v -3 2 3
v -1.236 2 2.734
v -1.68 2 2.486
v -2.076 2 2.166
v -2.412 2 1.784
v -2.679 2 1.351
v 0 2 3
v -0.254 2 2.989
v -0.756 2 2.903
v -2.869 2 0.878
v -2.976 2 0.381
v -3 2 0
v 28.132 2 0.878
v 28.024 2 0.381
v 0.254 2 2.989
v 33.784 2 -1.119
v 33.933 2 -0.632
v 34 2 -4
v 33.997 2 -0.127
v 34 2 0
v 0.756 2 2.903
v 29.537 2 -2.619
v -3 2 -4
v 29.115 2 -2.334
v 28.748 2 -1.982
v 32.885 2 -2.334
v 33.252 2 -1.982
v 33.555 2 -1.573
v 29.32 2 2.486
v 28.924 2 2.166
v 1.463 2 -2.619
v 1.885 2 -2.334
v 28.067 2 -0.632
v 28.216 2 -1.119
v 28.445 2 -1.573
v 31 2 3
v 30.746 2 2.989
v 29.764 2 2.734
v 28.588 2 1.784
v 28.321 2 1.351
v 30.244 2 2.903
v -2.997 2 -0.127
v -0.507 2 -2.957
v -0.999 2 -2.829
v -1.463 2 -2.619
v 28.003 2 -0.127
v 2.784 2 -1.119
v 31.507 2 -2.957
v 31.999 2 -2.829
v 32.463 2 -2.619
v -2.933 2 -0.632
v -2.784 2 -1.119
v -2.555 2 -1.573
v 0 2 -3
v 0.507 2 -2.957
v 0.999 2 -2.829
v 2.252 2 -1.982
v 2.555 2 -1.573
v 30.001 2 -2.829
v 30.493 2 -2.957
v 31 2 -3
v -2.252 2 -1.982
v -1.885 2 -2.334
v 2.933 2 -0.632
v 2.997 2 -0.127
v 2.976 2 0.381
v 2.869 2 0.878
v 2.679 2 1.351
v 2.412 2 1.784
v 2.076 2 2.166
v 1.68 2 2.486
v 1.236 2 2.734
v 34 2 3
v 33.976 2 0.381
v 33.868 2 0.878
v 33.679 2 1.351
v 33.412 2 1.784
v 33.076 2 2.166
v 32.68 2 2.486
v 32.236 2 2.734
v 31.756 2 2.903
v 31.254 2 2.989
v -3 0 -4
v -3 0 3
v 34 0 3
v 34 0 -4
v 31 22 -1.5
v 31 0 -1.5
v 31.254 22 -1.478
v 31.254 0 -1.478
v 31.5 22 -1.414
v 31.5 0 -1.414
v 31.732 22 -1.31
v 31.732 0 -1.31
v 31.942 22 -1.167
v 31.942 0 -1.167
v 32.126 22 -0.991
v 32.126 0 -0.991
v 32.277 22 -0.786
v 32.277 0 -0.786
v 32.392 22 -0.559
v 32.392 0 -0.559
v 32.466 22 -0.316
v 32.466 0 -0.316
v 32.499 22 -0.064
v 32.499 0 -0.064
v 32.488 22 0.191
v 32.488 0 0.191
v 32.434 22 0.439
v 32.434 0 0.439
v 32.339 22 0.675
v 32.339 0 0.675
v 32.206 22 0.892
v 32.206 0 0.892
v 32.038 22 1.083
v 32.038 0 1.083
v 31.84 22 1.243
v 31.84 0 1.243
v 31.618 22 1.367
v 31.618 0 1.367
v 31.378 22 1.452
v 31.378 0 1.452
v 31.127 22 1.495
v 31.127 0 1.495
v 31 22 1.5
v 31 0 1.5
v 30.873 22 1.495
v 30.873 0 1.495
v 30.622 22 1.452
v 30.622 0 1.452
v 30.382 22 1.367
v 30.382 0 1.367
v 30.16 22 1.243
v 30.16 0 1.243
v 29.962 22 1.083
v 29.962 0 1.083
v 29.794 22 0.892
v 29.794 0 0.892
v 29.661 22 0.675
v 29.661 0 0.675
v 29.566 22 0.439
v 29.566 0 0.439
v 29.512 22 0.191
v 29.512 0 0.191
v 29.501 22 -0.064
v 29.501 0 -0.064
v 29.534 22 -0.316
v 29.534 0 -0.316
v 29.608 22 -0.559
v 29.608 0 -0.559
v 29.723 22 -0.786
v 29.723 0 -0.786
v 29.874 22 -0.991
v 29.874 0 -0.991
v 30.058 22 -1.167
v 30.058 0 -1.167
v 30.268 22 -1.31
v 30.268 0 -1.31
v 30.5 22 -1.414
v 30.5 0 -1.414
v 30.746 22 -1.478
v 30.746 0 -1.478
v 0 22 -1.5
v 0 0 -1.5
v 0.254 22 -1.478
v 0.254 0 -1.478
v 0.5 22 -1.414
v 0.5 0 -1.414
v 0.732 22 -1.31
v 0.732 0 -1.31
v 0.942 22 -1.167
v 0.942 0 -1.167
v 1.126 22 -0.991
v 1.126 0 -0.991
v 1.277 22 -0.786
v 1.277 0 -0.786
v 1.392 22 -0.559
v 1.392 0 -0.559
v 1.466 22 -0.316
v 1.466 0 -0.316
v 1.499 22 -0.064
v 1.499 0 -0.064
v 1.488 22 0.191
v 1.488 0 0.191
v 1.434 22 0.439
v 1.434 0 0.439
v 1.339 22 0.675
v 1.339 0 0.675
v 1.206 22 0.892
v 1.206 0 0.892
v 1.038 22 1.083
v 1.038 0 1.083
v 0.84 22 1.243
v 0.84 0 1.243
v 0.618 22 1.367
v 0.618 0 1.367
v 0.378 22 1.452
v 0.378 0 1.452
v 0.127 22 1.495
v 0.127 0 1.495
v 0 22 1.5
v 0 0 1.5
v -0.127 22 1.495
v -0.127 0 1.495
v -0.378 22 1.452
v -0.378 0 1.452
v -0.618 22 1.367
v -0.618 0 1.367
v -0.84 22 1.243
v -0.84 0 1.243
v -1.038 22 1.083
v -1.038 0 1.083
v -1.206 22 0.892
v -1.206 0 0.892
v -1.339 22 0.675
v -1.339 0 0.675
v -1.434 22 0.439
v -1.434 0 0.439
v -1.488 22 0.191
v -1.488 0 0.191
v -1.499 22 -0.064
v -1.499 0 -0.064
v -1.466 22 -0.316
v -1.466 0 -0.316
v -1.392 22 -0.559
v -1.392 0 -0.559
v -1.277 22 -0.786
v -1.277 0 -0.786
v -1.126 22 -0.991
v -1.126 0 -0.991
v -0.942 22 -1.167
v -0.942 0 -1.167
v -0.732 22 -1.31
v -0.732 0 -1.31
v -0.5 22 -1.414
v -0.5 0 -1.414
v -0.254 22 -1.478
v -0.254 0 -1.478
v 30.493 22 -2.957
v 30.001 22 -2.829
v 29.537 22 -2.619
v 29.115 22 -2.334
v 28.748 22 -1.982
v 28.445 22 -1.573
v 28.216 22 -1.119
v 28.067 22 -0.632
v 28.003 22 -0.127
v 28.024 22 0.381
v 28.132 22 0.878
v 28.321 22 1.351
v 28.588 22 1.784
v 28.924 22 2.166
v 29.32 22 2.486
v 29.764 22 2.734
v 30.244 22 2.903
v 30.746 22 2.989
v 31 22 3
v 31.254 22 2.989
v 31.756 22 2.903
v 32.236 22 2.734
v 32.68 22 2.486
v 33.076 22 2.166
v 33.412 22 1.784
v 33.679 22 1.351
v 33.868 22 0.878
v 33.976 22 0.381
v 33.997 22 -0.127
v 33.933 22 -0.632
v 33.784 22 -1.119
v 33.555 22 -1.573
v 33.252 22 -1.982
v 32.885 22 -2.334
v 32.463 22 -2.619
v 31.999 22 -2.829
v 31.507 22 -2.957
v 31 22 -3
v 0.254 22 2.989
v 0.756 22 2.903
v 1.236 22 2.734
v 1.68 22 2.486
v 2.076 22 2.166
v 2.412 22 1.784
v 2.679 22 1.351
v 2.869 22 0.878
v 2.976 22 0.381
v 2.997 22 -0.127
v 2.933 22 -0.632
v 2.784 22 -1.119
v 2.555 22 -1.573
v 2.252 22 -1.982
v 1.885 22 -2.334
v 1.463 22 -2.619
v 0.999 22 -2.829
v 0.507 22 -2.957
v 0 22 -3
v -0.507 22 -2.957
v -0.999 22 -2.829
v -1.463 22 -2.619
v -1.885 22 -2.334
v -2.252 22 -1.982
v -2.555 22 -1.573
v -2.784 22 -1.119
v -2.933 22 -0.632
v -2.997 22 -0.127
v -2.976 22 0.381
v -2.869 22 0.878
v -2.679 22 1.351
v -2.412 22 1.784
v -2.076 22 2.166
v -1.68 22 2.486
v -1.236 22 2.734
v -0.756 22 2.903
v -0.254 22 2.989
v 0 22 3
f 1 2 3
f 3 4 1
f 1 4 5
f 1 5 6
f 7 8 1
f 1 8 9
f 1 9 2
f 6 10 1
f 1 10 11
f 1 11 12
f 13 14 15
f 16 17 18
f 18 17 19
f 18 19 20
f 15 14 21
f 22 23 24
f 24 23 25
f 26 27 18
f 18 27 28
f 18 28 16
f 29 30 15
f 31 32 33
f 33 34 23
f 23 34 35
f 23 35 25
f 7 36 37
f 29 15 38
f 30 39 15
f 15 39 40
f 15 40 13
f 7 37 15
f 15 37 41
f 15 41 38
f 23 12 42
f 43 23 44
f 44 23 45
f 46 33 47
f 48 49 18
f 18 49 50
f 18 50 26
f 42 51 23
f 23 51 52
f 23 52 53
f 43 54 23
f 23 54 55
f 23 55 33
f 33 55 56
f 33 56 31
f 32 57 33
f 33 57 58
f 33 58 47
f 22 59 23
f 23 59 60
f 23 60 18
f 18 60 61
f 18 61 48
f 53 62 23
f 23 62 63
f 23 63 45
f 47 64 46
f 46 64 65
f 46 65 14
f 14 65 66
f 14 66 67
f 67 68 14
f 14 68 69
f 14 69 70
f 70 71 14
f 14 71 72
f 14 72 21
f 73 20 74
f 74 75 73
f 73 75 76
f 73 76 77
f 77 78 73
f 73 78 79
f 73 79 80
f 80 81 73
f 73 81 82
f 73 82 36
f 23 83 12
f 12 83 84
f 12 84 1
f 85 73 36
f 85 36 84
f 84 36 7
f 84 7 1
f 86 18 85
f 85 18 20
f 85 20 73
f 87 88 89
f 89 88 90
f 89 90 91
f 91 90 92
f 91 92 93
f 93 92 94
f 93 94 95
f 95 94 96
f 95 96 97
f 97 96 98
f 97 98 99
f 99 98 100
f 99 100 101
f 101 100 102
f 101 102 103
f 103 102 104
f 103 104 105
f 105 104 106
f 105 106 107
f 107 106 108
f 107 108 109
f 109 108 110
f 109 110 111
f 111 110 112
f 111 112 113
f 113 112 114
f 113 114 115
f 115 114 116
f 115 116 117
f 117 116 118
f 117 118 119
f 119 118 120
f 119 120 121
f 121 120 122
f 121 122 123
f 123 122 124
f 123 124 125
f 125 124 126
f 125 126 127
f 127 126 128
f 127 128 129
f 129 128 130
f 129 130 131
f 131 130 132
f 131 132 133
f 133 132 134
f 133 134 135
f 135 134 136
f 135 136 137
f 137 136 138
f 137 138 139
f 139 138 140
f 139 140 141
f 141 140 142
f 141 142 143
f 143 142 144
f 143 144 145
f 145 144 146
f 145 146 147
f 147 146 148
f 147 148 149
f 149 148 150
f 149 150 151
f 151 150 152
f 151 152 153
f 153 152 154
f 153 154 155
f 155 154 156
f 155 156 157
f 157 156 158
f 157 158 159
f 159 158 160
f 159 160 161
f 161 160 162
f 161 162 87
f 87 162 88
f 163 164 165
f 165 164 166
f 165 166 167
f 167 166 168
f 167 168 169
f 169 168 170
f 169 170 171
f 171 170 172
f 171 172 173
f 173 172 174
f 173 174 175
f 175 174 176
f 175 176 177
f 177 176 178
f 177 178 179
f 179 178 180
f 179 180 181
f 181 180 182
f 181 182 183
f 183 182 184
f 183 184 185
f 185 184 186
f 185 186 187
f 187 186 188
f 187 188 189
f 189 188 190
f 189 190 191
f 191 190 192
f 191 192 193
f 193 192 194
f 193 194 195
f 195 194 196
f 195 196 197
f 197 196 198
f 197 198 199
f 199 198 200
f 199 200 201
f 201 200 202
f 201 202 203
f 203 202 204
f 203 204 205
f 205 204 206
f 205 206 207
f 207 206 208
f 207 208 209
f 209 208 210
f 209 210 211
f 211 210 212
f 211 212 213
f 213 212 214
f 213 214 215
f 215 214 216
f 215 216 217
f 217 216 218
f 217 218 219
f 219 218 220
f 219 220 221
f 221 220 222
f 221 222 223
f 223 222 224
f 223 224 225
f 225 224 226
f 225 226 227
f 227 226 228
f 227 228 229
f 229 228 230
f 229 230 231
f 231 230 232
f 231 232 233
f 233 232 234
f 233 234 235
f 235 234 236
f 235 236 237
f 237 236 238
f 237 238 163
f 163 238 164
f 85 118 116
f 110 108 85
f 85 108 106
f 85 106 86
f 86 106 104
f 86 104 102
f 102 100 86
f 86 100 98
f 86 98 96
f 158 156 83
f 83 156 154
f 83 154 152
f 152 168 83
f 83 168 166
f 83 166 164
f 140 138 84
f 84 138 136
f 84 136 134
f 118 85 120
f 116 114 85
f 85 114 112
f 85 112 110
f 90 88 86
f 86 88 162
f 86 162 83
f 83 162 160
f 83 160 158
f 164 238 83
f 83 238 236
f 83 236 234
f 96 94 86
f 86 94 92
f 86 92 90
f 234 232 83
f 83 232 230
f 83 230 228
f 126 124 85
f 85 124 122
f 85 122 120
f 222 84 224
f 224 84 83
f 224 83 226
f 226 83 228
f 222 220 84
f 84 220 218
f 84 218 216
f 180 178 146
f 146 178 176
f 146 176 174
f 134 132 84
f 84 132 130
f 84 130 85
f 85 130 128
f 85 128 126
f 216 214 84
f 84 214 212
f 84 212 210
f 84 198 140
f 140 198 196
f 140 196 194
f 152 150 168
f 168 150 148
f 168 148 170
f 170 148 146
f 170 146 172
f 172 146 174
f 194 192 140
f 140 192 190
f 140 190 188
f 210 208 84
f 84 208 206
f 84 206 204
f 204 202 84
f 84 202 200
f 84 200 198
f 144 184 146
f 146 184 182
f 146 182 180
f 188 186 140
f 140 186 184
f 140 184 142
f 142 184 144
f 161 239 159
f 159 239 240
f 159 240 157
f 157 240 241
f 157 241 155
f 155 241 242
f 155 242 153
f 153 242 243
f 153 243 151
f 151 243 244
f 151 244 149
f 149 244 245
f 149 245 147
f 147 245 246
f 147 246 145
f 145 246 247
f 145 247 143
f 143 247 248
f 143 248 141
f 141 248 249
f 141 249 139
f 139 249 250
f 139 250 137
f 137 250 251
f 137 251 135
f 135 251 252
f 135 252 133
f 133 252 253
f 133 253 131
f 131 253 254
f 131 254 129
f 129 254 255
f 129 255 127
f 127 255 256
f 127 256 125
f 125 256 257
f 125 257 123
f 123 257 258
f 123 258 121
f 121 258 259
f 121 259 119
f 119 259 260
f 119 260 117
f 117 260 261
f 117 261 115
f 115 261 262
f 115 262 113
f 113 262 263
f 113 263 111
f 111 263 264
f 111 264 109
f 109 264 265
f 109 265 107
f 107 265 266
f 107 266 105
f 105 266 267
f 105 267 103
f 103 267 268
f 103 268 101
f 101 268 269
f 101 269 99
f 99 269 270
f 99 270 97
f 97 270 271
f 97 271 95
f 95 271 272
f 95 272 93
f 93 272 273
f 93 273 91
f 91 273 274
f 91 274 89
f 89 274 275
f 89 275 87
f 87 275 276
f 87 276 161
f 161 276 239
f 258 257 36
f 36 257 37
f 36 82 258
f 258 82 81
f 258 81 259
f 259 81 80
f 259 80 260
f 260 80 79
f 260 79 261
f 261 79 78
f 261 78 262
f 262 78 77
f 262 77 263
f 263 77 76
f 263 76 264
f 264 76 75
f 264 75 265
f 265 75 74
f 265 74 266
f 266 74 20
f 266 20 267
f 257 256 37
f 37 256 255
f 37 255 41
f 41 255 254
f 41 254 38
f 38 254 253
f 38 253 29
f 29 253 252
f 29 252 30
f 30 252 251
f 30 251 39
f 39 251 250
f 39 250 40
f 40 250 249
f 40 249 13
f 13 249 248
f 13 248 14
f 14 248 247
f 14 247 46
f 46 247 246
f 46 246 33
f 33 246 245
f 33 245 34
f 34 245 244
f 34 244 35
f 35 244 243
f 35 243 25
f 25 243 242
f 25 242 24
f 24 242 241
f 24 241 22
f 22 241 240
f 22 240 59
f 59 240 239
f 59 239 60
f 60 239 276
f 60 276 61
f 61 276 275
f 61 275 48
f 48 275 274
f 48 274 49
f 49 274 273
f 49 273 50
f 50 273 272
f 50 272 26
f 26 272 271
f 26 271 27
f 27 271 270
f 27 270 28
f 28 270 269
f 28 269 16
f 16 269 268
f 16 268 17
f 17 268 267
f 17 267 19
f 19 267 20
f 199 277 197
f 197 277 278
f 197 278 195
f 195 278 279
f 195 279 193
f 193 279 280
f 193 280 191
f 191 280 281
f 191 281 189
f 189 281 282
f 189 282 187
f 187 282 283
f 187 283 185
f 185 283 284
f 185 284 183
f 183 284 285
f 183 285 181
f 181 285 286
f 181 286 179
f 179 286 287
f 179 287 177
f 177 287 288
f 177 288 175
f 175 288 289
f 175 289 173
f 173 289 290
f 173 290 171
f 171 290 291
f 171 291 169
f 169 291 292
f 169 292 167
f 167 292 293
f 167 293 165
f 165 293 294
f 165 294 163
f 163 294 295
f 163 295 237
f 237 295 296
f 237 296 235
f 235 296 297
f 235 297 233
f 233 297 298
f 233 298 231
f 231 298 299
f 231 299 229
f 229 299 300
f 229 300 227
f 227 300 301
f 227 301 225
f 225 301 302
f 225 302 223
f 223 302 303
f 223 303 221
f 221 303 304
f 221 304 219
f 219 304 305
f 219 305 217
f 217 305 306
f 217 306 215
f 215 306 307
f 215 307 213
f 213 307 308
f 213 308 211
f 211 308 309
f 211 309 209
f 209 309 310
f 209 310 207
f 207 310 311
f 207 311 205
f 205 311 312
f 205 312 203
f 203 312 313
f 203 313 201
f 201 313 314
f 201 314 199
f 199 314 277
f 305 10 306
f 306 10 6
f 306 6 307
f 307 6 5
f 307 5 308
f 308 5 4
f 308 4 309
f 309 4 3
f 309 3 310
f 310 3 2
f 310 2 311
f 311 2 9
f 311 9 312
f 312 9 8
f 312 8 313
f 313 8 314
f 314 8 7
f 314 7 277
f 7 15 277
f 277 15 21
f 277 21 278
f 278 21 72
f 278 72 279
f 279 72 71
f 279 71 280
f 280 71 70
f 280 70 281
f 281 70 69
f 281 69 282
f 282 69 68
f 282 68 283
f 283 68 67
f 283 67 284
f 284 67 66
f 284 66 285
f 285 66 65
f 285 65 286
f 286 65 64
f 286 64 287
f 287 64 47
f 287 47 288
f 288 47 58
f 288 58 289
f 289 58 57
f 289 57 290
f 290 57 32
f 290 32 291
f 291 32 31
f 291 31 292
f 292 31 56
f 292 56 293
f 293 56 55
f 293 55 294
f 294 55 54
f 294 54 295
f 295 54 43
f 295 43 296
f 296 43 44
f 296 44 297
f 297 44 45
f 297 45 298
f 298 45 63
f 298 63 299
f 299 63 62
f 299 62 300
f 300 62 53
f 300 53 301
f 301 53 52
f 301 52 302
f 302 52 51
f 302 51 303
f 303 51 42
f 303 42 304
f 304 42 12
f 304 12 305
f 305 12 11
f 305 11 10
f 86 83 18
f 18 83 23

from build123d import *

# Parameters (mm, degrees)
SKETCH1_W           = 37
SKETCH1_H           = 31
SKETCH1_R           = 1.5
BOSS_EXTRUDE1_DEPTH = 2
SKETCH2_R           = 3
SKETCH2_R_2         = 1.5
BOSS_EXTRUDE2_DEPTH = 20
SKETCH3_W           = 37
SKETCH3_H           = 24
CUT_EXTRUDE1_DEPTH  = 50.2341345


with BuildPart() as part:
    # Sketch1 → Boss-Extrude1 (new body)
    with BuildSketch(Plane(origin=(0, 0, 0), x_dir=(1, 0, 0), z_dir=(0, 1, 0))):
        with Locations((15.5, 12.5)):
            Rectangle(SKETCH1_W, SKETCH1_H)
        with Locations(Location((0, 25, 0), (0, 0, 270))):
            Circle(SKETCH1_R, mode=Mode.SUBTRACT)
        with Locations(Location((31, 25, 0), (0, 0, 270))):
            Circle(SKETCH1_R, mode=Mode.SUBTRACT)
        with Locations(Location((31, 0, 0), (0, 0, 270))):
            Circle(SKETCH1_R, mode=Mode.SUBTRACT)
        with Locations(Location((0, 0, 0), (0, 0, 270))):
            Circle(SKETCH1_R, mode=Mode.SUBTRACT)
    extrude(amount=BOSS_EXTRUDE1_DEPTH)

    # Sketch2 → Boss-Extrude2 (add)
    # profile 1 of 4: a face of its own
    with BuildSketch(Plane(origin=(0, 2, 0), x_dir=(1, 0, 0), z_dir=(0, 1, 0))):
        with Locations(Location((0, 25, 0), (0, 0, 90))):
            Circle(SKETCH2_R)
        with Locations(Location((0, 25, 0), (0, 0, 270))):
            Circle(SKETCH2_R_2, mode=Mode.SUBTRACT)
    # profile 2 of 4: a face of its own
    with BuildSketch(Plane(origin=(0, 2, 0), x_dir=(1, 0, 0), z_dir=(0, 1, 0))):
        with Locations(Location((31, 25, 0), (0, 0, 90))):
            Circle(SKETCH2_R)
        with Locations(Location((31, 25, 0), (0, 0, 270))):
            Circle(SKETCH2_R_2, mode=Mode.SUBTRACT)
    # profile 3 of 4: a face of its own
    with BuildSketch(Plane(origin=(0, 2, 0), x_dir=(1, 0, 0), z_dir=(0, 1, 0))):
        with Locations(Location((31, 0, 0), (0, 0, 270))):
            Circle(SKETCH2_R)
        with Locations(Location((31, 0, 0), (0, 0, 270))):
            Circle(SKETCH2_R_2, mode=Mode.SUBTRACT)
    # profile 4 of 4: a face of its own
    with BuildSketch(Plane(origin=(0, 2, 0), x_dir=(1, 0, 0), z_dir=(0, 1, 0))):
        with Locations(Location((0, 0, 0), (0, 0, 270))):
            Circle(SKETCH2_R)
        with Locations(Location((0, 0, 0), (0, 0, 270))):
            Circle(SKETCH2_R_2, mode=Mode.SUBTRACT)
    extrude(amount=BOSS_EXTRUDE2_DEPTH)

    # Sketch3 → Cut-Extrude1 (cut, through all)
    with BuildSketch(Plane.XZ):
        with Locations((15.5, -16)):
            Rectangle(SKETCH3_W, SKETCH3_H)
    extrude(amount=-CUT_EXTRUDE1_DEPTH, mode=Mode.SUBTRACT)


solid = part.part
